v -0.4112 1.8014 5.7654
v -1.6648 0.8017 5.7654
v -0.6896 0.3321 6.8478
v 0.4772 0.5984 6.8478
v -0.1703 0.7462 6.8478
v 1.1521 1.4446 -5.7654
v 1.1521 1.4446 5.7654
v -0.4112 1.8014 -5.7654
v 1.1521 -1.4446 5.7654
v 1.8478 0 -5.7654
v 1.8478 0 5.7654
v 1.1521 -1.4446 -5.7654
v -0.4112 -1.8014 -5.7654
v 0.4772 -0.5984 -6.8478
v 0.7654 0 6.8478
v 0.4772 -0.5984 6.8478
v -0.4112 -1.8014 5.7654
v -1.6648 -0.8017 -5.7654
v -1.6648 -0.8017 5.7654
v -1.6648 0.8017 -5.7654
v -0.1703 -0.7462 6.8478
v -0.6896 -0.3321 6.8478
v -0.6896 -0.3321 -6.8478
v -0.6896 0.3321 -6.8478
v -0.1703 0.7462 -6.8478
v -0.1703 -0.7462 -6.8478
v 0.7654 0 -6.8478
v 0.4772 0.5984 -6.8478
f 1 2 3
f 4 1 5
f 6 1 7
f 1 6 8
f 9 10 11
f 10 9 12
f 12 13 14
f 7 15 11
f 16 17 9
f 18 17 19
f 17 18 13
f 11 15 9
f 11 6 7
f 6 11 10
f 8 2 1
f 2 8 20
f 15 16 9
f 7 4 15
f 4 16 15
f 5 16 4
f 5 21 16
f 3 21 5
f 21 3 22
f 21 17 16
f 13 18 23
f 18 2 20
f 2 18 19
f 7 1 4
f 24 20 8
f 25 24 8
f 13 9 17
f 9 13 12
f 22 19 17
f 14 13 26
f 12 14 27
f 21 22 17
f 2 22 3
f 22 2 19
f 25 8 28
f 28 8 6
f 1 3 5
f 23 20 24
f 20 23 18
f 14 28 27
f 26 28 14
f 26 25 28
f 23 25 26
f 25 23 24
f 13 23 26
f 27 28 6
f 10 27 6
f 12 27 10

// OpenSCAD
module letter_s(height = 20) {
  difference() {
    hull() {
      translate([0, 0, -height/4]) sphere(r=height/10);
      translate([0, 0, height/4]) sphere(r=height/10);
      translate([0, 0, -height/4]) sphere(r=height/10);
      translate([0, 0, height/4]) sphere(r=height/10);
      translate([0, 0, height/4]) sphere(r=height/10);
    }
    translate([0, 0, height/2]) cube([height*2, height*2, height*2]);
  }
}

letter_s();
